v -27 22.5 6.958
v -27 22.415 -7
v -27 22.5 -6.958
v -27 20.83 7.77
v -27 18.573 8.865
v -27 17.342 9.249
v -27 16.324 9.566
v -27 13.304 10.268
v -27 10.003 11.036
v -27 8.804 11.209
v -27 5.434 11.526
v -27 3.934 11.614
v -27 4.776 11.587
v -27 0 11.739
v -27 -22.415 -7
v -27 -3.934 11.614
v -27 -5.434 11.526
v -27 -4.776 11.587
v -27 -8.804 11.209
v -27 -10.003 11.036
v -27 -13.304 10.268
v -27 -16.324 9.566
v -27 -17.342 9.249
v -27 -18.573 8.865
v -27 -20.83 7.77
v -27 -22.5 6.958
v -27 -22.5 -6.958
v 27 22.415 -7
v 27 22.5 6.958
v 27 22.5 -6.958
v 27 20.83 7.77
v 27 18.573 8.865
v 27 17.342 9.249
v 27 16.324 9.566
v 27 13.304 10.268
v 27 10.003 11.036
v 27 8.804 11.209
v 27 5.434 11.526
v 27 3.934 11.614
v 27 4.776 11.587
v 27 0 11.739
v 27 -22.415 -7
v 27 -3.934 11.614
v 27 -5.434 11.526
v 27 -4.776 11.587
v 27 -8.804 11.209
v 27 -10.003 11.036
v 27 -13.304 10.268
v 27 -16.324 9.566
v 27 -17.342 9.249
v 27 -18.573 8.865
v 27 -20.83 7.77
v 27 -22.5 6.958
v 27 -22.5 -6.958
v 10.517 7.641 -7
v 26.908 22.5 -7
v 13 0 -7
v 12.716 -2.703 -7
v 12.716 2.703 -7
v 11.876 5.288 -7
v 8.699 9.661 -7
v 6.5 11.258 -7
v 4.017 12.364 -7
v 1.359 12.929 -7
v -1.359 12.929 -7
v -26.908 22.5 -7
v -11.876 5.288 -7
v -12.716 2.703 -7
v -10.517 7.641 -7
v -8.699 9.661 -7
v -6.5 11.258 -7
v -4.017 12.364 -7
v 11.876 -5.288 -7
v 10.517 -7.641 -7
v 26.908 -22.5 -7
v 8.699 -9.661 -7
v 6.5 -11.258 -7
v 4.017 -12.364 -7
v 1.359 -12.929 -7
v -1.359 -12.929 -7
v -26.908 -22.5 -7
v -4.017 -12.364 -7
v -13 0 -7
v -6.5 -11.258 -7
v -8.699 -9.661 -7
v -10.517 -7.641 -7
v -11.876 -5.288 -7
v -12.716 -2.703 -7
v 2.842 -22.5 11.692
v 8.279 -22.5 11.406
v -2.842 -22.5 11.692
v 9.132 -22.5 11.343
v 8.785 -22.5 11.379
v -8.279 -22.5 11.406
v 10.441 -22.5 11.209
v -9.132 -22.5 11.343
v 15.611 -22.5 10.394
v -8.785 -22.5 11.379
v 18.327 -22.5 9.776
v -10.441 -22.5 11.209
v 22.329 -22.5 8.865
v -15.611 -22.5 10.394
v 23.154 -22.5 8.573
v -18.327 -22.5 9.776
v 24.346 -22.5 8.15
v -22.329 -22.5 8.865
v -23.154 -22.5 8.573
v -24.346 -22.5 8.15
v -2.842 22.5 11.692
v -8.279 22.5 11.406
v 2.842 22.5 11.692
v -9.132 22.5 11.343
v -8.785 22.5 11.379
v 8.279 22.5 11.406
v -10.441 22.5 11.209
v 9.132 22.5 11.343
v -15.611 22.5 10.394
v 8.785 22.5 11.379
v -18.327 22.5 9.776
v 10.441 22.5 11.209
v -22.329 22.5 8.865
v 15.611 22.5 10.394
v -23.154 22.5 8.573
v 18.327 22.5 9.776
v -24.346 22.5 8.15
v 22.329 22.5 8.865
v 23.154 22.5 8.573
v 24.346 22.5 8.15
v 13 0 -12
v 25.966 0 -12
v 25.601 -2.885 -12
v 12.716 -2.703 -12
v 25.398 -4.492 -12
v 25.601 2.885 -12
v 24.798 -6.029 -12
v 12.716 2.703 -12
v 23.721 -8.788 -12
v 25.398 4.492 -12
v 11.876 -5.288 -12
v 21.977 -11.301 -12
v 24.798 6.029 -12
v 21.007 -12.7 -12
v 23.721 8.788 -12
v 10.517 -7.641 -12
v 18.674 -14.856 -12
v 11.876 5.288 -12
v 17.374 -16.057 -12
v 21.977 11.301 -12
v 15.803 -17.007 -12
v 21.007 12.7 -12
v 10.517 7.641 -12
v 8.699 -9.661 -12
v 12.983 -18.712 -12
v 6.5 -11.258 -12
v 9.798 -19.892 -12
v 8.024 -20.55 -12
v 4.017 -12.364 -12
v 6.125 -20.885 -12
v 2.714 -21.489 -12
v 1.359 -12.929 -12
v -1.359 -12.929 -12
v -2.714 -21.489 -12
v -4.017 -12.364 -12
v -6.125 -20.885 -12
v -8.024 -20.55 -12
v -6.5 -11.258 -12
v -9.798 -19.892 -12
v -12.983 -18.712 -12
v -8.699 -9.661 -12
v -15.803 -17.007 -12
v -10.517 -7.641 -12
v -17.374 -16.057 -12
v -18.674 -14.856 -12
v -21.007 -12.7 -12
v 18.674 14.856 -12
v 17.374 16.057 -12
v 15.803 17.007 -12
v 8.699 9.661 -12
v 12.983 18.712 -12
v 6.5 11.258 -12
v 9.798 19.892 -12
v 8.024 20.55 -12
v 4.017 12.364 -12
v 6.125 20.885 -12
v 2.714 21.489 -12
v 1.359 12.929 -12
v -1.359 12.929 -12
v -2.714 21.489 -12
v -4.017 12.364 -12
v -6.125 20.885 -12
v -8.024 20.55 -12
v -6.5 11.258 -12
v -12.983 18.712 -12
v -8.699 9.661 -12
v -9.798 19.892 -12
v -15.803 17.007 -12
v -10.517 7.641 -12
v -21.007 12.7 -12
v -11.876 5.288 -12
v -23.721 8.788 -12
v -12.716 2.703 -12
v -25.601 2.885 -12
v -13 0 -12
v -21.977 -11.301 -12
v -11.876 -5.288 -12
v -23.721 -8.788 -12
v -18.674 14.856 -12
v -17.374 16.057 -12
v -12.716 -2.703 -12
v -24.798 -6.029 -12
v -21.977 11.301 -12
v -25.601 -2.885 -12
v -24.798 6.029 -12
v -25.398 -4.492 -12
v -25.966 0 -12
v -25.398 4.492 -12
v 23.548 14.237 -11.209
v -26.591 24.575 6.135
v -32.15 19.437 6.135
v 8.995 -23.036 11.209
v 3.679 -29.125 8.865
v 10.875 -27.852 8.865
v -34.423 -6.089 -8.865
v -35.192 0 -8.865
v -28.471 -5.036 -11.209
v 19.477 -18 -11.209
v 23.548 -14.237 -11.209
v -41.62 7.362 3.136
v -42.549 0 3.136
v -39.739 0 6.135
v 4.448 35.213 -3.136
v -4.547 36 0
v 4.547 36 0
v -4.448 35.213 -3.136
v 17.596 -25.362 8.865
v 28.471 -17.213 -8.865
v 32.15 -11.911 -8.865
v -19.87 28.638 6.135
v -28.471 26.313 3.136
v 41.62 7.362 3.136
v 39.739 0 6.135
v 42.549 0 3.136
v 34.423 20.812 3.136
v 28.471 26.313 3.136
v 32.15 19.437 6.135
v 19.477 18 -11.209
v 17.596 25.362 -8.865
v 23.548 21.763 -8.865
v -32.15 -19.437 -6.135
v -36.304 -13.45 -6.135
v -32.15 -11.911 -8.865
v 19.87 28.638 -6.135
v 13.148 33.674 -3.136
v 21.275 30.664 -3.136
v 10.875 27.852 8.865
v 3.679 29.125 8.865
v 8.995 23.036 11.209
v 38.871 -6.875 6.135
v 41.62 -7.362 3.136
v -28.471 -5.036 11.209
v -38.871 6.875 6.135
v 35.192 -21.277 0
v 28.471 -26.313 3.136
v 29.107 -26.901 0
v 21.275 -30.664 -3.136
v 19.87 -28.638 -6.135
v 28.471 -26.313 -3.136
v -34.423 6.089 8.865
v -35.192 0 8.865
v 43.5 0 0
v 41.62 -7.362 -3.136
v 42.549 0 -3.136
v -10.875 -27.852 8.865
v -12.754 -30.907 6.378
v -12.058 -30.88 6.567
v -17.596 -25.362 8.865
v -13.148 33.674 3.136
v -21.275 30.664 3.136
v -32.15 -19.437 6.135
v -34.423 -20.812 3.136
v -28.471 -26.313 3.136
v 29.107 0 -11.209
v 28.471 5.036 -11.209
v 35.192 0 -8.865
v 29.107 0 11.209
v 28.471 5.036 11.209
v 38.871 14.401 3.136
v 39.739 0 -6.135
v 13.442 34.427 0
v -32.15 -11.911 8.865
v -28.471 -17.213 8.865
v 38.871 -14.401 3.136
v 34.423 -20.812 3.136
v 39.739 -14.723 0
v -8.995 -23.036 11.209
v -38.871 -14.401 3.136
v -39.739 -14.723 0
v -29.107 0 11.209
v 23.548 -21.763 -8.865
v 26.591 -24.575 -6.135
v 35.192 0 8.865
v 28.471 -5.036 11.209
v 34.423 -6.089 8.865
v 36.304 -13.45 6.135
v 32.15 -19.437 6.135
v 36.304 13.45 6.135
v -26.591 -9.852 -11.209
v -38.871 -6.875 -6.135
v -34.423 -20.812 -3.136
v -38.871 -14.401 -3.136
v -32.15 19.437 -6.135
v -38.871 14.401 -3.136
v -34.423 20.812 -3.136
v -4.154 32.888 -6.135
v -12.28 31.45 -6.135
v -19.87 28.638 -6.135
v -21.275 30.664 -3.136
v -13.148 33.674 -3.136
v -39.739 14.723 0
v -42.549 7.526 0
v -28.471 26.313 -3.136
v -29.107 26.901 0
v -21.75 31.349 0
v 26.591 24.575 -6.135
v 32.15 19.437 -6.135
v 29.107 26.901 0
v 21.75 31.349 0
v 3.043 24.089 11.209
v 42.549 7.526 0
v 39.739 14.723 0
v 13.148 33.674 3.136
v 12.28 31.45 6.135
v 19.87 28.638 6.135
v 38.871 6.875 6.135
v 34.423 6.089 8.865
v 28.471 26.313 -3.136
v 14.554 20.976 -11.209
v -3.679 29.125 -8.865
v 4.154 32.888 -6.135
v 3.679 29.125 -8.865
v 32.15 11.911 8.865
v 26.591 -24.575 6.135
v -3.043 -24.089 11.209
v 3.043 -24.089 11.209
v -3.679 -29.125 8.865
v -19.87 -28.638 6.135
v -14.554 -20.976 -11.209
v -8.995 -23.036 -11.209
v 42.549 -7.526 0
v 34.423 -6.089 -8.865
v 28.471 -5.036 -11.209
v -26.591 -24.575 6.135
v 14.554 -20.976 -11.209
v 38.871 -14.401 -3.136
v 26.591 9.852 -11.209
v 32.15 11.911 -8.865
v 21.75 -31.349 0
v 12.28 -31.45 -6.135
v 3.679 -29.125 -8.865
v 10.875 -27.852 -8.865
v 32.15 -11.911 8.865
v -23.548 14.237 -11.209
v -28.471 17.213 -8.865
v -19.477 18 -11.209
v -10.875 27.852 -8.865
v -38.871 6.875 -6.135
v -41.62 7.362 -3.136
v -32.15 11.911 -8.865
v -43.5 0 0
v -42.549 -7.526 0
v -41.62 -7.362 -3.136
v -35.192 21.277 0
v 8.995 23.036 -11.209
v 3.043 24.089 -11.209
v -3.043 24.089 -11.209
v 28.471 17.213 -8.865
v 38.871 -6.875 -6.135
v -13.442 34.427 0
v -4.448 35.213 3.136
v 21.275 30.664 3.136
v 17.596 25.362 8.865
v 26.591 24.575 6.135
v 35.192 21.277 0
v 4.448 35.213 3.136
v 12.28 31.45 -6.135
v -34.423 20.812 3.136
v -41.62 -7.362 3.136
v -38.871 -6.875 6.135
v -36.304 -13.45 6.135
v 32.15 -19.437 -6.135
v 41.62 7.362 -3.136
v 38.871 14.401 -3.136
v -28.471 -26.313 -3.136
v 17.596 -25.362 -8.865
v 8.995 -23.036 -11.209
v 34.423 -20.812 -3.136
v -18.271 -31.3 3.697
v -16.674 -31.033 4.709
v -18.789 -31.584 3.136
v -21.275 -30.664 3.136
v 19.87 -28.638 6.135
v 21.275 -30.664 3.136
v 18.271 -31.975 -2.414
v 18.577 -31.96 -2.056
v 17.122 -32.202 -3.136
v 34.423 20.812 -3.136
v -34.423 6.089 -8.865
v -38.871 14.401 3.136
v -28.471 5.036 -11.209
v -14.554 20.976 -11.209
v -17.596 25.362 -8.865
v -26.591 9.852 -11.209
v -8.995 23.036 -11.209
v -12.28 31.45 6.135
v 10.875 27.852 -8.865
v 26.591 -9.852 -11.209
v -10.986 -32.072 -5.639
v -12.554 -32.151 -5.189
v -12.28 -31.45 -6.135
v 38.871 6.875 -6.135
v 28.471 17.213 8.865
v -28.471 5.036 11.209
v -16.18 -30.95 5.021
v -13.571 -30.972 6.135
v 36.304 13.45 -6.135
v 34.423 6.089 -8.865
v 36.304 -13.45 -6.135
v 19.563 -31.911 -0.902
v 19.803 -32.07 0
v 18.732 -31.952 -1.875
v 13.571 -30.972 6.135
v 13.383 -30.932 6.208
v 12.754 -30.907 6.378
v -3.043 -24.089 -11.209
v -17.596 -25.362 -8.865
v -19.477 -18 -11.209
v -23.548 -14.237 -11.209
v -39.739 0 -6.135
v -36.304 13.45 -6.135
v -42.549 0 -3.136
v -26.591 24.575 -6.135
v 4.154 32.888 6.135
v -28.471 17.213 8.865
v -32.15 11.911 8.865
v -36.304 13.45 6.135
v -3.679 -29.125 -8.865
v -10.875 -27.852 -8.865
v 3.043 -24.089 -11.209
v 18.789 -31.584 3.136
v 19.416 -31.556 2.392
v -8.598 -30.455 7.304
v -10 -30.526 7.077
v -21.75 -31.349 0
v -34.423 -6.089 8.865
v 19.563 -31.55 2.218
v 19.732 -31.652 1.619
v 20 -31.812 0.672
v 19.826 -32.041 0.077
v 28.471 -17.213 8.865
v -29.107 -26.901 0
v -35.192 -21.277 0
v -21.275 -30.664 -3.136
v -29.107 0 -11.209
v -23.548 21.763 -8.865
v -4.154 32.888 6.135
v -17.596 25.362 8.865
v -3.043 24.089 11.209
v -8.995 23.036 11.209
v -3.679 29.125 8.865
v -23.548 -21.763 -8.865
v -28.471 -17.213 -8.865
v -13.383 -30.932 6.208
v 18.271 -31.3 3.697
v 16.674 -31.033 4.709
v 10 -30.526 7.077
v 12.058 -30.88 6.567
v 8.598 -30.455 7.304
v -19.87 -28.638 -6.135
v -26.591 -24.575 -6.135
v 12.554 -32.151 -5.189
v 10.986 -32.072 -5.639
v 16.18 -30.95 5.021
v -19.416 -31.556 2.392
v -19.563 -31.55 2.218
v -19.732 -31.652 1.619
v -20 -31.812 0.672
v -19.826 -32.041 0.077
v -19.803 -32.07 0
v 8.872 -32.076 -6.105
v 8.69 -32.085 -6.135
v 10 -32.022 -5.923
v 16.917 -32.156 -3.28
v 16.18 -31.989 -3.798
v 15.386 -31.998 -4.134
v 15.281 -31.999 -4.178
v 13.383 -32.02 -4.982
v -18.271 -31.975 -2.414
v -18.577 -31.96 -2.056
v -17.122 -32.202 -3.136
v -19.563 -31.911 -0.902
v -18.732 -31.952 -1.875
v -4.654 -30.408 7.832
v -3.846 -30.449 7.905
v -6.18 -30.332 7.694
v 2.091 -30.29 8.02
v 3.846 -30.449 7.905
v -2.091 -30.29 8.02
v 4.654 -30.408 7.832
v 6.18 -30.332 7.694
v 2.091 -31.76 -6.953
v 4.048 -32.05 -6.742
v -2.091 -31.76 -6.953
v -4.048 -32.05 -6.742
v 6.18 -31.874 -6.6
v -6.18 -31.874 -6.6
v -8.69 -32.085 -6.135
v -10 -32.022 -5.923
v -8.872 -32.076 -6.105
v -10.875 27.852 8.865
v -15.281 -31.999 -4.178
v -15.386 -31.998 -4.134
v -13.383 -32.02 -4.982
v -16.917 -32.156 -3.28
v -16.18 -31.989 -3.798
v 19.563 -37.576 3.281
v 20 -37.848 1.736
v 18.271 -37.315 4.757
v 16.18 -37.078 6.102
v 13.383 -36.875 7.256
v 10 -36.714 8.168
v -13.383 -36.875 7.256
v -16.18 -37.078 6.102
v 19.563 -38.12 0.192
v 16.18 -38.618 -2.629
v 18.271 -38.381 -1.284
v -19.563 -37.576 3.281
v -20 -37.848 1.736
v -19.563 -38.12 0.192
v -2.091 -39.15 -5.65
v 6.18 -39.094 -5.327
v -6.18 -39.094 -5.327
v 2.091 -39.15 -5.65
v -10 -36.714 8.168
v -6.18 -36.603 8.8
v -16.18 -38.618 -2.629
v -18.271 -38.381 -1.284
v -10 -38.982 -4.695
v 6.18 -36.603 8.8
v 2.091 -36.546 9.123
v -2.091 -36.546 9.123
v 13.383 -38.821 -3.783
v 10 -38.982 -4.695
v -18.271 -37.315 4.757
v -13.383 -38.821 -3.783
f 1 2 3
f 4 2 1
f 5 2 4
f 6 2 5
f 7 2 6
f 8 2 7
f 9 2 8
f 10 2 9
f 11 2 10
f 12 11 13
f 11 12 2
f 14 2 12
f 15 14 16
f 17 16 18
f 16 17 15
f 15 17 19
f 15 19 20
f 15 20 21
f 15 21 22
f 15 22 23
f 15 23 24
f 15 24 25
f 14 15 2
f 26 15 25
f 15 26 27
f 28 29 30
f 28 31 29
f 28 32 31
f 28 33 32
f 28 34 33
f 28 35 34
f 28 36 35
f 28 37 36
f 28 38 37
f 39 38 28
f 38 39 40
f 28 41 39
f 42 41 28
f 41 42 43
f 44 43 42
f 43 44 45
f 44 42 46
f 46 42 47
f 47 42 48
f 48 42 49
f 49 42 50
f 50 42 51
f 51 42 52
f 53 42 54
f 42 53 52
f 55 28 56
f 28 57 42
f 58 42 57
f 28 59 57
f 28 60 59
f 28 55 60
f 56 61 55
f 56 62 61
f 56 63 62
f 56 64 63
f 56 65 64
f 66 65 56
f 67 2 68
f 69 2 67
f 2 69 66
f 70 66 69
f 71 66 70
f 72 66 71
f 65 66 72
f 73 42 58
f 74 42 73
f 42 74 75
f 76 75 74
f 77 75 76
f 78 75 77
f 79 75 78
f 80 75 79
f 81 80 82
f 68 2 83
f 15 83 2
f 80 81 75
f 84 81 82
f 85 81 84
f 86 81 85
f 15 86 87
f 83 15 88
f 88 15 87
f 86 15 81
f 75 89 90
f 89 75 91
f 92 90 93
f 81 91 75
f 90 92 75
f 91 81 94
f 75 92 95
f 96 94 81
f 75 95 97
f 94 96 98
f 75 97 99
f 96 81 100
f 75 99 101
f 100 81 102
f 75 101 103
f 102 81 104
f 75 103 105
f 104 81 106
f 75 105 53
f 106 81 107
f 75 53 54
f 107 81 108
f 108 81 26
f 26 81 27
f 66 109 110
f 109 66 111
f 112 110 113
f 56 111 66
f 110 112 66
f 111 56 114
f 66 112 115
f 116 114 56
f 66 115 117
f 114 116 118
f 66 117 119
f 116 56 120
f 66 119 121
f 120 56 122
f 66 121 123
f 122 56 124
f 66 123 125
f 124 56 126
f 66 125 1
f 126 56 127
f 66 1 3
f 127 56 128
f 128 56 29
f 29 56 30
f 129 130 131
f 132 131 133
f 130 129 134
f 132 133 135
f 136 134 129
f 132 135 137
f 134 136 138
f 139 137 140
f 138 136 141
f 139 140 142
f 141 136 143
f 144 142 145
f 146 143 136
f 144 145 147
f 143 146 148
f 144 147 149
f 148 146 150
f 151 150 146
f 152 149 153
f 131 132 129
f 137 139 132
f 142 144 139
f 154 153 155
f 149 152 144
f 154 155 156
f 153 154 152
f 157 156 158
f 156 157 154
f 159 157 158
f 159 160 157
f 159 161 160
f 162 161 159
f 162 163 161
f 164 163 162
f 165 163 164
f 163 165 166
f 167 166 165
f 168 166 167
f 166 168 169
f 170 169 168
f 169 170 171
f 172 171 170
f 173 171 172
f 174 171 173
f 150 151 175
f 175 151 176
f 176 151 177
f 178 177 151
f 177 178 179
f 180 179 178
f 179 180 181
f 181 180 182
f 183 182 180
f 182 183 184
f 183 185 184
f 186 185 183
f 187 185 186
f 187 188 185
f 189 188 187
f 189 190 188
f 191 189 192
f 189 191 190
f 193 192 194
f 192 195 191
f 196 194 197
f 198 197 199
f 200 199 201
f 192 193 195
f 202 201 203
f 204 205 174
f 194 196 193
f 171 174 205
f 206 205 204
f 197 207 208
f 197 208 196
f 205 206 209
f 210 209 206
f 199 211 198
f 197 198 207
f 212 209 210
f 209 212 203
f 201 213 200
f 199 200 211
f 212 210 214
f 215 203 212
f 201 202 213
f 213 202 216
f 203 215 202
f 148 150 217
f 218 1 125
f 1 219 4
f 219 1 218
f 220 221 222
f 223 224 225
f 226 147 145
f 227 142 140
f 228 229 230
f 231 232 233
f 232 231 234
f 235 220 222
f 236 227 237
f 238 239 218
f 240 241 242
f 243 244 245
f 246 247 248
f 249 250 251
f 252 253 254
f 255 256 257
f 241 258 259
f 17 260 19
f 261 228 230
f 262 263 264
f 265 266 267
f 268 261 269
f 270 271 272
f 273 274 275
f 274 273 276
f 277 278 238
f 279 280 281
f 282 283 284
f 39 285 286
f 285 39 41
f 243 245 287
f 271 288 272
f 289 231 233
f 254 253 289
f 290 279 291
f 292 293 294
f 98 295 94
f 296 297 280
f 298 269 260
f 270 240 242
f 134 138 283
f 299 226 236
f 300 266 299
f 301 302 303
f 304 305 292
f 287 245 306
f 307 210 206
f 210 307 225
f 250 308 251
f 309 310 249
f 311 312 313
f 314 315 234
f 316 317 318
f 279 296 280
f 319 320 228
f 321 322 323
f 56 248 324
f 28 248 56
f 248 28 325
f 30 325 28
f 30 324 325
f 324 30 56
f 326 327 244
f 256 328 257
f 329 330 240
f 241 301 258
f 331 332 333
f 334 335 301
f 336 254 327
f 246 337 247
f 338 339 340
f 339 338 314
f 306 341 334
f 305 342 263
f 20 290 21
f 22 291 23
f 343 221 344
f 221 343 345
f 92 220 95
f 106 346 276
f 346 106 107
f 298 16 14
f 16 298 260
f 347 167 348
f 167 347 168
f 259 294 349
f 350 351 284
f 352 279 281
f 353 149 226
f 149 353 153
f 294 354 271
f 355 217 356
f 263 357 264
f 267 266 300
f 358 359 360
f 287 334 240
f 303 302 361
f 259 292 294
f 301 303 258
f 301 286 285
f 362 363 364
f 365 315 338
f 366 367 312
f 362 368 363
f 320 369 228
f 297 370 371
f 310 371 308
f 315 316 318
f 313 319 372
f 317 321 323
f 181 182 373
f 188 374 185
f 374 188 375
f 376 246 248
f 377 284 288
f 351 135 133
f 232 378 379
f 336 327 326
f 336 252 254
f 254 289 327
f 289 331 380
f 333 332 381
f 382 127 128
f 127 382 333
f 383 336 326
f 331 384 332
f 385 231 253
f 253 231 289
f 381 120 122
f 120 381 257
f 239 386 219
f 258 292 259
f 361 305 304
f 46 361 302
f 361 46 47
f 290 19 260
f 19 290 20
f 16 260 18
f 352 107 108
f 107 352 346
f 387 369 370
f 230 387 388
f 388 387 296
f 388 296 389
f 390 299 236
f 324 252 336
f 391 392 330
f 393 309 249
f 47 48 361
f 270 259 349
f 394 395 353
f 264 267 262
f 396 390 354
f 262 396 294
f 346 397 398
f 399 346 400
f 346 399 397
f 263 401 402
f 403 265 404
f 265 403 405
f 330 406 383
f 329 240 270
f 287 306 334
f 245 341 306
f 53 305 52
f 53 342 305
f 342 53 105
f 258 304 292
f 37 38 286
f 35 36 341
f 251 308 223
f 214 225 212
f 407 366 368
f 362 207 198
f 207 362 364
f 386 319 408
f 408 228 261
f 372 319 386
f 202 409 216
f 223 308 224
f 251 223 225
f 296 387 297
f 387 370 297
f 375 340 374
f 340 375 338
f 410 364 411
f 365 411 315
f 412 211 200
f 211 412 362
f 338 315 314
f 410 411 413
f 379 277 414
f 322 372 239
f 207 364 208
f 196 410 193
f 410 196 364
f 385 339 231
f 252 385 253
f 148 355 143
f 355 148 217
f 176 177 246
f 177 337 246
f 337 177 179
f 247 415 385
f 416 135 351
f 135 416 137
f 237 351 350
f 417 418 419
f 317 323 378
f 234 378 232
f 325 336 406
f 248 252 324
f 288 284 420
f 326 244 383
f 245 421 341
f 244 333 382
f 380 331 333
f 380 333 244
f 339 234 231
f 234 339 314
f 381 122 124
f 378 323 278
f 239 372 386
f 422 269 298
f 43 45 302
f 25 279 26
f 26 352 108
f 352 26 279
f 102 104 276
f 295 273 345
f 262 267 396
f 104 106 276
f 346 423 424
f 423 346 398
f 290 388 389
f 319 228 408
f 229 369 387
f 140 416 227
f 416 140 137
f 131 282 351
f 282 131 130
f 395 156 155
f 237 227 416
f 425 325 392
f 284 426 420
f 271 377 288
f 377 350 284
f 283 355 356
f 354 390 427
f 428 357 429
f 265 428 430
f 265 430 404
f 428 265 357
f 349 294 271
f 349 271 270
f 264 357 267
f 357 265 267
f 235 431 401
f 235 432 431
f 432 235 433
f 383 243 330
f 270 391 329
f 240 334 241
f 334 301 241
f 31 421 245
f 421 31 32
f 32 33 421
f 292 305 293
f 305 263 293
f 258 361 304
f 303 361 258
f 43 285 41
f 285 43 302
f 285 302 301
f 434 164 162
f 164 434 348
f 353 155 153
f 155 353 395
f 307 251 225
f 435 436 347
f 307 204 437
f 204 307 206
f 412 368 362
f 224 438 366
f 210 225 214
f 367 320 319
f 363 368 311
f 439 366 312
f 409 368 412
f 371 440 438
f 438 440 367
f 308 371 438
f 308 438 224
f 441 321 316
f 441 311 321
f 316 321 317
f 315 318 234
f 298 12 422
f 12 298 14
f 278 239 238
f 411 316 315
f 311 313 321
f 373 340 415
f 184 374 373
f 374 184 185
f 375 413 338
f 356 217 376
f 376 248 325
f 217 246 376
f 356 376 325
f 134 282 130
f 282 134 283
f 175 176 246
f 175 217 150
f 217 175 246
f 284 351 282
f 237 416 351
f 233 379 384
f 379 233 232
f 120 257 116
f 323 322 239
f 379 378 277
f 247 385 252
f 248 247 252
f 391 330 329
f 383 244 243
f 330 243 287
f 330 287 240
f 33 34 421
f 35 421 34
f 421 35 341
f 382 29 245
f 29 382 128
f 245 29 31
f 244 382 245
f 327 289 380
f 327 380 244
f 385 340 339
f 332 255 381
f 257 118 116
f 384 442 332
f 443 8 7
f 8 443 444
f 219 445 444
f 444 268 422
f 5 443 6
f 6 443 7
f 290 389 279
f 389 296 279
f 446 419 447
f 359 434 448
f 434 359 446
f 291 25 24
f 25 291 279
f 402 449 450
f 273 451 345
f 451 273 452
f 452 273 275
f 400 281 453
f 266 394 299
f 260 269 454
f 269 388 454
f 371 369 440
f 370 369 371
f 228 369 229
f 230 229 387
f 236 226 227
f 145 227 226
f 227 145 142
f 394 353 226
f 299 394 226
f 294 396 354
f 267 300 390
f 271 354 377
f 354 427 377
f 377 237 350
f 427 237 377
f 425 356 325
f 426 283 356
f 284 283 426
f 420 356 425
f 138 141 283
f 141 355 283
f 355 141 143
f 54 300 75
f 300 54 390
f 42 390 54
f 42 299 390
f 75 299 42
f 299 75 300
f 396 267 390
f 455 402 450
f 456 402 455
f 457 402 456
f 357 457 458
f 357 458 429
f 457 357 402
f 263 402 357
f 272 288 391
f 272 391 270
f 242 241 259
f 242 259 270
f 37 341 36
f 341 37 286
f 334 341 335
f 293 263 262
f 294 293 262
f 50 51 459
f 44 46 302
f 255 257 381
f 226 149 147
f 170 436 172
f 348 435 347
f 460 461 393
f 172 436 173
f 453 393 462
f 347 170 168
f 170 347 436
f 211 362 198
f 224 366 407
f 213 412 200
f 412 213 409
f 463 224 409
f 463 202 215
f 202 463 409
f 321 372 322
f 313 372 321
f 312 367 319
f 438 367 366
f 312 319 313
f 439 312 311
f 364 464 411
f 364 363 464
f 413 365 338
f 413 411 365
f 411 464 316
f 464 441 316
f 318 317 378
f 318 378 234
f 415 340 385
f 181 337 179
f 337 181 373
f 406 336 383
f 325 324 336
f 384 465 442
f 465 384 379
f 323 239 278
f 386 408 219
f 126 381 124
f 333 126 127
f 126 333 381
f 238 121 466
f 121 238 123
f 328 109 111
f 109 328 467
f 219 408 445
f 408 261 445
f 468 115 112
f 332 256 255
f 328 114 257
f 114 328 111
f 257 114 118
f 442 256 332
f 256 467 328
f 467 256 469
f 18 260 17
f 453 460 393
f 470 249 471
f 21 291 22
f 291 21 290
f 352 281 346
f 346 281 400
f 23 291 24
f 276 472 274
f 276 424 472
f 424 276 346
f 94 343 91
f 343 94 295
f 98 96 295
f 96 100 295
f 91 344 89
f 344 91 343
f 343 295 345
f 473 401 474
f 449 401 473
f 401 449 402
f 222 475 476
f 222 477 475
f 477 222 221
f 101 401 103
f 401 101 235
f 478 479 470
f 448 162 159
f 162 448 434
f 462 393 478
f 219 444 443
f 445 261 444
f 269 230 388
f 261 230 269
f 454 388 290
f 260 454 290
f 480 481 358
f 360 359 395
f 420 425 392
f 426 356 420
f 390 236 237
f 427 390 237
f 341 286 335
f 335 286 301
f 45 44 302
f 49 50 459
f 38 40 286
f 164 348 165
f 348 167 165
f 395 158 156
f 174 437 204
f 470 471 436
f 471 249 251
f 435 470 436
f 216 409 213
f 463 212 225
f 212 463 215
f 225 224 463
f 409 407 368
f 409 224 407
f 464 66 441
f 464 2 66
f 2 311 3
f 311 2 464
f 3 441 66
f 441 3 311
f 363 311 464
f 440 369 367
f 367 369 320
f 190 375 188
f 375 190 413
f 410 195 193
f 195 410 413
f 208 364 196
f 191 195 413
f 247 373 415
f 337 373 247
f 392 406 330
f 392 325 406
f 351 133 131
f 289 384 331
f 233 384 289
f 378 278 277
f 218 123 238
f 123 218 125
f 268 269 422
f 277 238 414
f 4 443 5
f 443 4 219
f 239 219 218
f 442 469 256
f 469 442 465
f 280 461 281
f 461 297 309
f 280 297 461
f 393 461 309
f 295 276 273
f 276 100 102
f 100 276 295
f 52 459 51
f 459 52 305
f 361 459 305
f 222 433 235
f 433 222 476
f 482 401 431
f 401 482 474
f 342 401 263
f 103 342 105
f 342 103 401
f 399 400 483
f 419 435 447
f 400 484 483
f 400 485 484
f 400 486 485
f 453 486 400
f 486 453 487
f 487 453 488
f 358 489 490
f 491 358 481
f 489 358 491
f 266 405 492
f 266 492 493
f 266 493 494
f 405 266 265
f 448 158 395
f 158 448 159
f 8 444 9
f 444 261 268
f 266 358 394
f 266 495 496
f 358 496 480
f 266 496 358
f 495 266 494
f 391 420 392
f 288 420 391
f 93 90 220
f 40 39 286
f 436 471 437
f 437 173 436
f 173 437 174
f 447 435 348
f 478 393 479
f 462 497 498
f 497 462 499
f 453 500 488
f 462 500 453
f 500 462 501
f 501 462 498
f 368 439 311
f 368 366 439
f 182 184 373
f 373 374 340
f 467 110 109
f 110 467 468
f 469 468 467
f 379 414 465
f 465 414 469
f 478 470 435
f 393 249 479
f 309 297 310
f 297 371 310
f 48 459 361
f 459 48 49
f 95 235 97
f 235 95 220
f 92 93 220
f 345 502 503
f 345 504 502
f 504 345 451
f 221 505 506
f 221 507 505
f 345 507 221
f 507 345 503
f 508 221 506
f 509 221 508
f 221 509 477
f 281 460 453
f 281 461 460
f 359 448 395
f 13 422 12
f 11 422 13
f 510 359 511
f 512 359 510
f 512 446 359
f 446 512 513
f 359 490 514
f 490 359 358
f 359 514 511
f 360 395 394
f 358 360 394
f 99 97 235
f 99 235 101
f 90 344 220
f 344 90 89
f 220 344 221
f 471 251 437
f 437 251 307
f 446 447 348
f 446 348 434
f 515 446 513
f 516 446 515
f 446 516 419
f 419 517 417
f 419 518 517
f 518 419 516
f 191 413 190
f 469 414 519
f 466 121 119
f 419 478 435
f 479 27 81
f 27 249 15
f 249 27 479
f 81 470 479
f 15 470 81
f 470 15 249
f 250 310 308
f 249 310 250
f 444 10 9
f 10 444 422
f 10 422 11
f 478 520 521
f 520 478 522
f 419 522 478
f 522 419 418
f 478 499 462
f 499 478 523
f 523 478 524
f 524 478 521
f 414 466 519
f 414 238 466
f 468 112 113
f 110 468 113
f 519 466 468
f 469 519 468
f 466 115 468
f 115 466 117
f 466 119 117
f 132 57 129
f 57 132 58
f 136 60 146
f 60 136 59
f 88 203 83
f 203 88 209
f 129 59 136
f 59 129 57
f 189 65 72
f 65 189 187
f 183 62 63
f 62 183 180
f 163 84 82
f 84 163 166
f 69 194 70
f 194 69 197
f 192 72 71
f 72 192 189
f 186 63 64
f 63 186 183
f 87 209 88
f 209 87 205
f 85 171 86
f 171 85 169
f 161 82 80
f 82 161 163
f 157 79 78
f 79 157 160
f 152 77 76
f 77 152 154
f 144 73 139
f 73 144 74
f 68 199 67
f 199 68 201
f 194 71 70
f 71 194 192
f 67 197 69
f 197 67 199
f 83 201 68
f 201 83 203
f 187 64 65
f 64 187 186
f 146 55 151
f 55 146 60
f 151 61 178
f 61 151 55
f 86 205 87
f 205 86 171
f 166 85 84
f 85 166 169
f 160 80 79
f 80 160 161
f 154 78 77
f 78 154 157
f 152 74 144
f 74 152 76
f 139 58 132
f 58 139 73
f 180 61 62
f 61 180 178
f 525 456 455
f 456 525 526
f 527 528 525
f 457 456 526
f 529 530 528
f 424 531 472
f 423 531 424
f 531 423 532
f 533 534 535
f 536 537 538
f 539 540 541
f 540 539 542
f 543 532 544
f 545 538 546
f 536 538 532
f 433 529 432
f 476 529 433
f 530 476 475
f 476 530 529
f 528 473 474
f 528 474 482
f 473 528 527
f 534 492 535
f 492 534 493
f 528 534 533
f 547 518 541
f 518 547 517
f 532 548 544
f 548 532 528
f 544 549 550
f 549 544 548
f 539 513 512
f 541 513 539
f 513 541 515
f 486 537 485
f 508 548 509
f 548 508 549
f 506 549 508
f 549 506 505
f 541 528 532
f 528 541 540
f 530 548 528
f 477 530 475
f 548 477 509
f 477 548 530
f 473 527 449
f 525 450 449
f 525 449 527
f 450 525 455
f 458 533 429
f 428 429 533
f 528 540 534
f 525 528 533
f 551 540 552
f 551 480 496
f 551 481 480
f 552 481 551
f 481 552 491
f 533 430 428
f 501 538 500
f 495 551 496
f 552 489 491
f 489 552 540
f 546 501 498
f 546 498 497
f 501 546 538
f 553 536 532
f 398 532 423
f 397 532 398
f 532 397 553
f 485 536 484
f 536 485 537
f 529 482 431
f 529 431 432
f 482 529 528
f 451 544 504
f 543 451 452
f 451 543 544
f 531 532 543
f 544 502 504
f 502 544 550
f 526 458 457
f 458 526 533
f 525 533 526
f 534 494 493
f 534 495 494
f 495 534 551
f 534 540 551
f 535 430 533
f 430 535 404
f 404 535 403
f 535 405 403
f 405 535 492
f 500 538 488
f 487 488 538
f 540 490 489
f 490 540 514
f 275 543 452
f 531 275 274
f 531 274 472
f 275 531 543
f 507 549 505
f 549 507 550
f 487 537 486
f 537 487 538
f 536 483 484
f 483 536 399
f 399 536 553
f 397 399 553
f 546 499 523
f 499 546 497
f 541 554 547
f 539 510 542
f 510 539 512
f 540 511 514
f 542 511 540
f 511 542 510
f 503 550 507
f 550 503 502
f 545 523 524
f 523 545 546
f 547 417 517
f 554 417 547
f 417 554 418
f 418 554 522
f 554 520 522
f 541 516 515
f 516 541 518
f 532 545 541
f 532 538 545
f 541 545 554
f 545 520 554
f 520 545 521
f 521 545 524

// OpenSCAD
$fs = 0.01;



l=54;
w=45;
h=30;
add_l=33;
add_w=27;
letterHole=13;


difference() {

  difference() {
    color("red")
          translate ([-0, -0, 0])
            resize(newsize=[l+add_l,w+add_w,h]) sphere(r=1);

    union() {
      translate ([0,0,8])
         resize ([l, w, h])  cube(1, center=true);

      translate ([0,-83,0]) rotate ([-10,0,0])
         resize ([100, 100, 100])  cube(1, center=true);

      translate ([0,0,-37]) 
         resize ([100, 100, 50])  cube(1, center=true);
      }
    }


    union() {
        translate ([-0, -0, -50])
          linear_extrude(100) 
            circle(letterHole);
/*
        translate ([-4, -3, 0])
            cylinder(h=5,r=0.5, center=true);
        translate ([4, -3, 0])
            cylinder(h=5,r=0.5, center=true);
        translate ([-4, 3, 0])
            cylinder(h=5,r=0.5, center=true);
        translate ([4, 3, 0])
            cylinder(h=5,r=0.5, center=true);
*/
        translate ([0,0,-100])
            resize ([l, w, h])  cube(1, center=true);

    }
}


translate ([0,-28,0]) rotate([80,0,0])resize ([40,15,10]) cylinder(1,1,1);


/*

color("green")
    translate([0, 30, 0])
        rotate_extrude($fn = 80)
            polygon( points=[[0,0],[8,4],[4,8],[4,12],[12,16],[0,20]] );
            
            
color("red")
    translate([10, -10, 0])
        linear_extrude(10)
            polygon( points=[[0,0],[8,4],[4,8],[4,12],[12,16],[0,20]] );
*/
